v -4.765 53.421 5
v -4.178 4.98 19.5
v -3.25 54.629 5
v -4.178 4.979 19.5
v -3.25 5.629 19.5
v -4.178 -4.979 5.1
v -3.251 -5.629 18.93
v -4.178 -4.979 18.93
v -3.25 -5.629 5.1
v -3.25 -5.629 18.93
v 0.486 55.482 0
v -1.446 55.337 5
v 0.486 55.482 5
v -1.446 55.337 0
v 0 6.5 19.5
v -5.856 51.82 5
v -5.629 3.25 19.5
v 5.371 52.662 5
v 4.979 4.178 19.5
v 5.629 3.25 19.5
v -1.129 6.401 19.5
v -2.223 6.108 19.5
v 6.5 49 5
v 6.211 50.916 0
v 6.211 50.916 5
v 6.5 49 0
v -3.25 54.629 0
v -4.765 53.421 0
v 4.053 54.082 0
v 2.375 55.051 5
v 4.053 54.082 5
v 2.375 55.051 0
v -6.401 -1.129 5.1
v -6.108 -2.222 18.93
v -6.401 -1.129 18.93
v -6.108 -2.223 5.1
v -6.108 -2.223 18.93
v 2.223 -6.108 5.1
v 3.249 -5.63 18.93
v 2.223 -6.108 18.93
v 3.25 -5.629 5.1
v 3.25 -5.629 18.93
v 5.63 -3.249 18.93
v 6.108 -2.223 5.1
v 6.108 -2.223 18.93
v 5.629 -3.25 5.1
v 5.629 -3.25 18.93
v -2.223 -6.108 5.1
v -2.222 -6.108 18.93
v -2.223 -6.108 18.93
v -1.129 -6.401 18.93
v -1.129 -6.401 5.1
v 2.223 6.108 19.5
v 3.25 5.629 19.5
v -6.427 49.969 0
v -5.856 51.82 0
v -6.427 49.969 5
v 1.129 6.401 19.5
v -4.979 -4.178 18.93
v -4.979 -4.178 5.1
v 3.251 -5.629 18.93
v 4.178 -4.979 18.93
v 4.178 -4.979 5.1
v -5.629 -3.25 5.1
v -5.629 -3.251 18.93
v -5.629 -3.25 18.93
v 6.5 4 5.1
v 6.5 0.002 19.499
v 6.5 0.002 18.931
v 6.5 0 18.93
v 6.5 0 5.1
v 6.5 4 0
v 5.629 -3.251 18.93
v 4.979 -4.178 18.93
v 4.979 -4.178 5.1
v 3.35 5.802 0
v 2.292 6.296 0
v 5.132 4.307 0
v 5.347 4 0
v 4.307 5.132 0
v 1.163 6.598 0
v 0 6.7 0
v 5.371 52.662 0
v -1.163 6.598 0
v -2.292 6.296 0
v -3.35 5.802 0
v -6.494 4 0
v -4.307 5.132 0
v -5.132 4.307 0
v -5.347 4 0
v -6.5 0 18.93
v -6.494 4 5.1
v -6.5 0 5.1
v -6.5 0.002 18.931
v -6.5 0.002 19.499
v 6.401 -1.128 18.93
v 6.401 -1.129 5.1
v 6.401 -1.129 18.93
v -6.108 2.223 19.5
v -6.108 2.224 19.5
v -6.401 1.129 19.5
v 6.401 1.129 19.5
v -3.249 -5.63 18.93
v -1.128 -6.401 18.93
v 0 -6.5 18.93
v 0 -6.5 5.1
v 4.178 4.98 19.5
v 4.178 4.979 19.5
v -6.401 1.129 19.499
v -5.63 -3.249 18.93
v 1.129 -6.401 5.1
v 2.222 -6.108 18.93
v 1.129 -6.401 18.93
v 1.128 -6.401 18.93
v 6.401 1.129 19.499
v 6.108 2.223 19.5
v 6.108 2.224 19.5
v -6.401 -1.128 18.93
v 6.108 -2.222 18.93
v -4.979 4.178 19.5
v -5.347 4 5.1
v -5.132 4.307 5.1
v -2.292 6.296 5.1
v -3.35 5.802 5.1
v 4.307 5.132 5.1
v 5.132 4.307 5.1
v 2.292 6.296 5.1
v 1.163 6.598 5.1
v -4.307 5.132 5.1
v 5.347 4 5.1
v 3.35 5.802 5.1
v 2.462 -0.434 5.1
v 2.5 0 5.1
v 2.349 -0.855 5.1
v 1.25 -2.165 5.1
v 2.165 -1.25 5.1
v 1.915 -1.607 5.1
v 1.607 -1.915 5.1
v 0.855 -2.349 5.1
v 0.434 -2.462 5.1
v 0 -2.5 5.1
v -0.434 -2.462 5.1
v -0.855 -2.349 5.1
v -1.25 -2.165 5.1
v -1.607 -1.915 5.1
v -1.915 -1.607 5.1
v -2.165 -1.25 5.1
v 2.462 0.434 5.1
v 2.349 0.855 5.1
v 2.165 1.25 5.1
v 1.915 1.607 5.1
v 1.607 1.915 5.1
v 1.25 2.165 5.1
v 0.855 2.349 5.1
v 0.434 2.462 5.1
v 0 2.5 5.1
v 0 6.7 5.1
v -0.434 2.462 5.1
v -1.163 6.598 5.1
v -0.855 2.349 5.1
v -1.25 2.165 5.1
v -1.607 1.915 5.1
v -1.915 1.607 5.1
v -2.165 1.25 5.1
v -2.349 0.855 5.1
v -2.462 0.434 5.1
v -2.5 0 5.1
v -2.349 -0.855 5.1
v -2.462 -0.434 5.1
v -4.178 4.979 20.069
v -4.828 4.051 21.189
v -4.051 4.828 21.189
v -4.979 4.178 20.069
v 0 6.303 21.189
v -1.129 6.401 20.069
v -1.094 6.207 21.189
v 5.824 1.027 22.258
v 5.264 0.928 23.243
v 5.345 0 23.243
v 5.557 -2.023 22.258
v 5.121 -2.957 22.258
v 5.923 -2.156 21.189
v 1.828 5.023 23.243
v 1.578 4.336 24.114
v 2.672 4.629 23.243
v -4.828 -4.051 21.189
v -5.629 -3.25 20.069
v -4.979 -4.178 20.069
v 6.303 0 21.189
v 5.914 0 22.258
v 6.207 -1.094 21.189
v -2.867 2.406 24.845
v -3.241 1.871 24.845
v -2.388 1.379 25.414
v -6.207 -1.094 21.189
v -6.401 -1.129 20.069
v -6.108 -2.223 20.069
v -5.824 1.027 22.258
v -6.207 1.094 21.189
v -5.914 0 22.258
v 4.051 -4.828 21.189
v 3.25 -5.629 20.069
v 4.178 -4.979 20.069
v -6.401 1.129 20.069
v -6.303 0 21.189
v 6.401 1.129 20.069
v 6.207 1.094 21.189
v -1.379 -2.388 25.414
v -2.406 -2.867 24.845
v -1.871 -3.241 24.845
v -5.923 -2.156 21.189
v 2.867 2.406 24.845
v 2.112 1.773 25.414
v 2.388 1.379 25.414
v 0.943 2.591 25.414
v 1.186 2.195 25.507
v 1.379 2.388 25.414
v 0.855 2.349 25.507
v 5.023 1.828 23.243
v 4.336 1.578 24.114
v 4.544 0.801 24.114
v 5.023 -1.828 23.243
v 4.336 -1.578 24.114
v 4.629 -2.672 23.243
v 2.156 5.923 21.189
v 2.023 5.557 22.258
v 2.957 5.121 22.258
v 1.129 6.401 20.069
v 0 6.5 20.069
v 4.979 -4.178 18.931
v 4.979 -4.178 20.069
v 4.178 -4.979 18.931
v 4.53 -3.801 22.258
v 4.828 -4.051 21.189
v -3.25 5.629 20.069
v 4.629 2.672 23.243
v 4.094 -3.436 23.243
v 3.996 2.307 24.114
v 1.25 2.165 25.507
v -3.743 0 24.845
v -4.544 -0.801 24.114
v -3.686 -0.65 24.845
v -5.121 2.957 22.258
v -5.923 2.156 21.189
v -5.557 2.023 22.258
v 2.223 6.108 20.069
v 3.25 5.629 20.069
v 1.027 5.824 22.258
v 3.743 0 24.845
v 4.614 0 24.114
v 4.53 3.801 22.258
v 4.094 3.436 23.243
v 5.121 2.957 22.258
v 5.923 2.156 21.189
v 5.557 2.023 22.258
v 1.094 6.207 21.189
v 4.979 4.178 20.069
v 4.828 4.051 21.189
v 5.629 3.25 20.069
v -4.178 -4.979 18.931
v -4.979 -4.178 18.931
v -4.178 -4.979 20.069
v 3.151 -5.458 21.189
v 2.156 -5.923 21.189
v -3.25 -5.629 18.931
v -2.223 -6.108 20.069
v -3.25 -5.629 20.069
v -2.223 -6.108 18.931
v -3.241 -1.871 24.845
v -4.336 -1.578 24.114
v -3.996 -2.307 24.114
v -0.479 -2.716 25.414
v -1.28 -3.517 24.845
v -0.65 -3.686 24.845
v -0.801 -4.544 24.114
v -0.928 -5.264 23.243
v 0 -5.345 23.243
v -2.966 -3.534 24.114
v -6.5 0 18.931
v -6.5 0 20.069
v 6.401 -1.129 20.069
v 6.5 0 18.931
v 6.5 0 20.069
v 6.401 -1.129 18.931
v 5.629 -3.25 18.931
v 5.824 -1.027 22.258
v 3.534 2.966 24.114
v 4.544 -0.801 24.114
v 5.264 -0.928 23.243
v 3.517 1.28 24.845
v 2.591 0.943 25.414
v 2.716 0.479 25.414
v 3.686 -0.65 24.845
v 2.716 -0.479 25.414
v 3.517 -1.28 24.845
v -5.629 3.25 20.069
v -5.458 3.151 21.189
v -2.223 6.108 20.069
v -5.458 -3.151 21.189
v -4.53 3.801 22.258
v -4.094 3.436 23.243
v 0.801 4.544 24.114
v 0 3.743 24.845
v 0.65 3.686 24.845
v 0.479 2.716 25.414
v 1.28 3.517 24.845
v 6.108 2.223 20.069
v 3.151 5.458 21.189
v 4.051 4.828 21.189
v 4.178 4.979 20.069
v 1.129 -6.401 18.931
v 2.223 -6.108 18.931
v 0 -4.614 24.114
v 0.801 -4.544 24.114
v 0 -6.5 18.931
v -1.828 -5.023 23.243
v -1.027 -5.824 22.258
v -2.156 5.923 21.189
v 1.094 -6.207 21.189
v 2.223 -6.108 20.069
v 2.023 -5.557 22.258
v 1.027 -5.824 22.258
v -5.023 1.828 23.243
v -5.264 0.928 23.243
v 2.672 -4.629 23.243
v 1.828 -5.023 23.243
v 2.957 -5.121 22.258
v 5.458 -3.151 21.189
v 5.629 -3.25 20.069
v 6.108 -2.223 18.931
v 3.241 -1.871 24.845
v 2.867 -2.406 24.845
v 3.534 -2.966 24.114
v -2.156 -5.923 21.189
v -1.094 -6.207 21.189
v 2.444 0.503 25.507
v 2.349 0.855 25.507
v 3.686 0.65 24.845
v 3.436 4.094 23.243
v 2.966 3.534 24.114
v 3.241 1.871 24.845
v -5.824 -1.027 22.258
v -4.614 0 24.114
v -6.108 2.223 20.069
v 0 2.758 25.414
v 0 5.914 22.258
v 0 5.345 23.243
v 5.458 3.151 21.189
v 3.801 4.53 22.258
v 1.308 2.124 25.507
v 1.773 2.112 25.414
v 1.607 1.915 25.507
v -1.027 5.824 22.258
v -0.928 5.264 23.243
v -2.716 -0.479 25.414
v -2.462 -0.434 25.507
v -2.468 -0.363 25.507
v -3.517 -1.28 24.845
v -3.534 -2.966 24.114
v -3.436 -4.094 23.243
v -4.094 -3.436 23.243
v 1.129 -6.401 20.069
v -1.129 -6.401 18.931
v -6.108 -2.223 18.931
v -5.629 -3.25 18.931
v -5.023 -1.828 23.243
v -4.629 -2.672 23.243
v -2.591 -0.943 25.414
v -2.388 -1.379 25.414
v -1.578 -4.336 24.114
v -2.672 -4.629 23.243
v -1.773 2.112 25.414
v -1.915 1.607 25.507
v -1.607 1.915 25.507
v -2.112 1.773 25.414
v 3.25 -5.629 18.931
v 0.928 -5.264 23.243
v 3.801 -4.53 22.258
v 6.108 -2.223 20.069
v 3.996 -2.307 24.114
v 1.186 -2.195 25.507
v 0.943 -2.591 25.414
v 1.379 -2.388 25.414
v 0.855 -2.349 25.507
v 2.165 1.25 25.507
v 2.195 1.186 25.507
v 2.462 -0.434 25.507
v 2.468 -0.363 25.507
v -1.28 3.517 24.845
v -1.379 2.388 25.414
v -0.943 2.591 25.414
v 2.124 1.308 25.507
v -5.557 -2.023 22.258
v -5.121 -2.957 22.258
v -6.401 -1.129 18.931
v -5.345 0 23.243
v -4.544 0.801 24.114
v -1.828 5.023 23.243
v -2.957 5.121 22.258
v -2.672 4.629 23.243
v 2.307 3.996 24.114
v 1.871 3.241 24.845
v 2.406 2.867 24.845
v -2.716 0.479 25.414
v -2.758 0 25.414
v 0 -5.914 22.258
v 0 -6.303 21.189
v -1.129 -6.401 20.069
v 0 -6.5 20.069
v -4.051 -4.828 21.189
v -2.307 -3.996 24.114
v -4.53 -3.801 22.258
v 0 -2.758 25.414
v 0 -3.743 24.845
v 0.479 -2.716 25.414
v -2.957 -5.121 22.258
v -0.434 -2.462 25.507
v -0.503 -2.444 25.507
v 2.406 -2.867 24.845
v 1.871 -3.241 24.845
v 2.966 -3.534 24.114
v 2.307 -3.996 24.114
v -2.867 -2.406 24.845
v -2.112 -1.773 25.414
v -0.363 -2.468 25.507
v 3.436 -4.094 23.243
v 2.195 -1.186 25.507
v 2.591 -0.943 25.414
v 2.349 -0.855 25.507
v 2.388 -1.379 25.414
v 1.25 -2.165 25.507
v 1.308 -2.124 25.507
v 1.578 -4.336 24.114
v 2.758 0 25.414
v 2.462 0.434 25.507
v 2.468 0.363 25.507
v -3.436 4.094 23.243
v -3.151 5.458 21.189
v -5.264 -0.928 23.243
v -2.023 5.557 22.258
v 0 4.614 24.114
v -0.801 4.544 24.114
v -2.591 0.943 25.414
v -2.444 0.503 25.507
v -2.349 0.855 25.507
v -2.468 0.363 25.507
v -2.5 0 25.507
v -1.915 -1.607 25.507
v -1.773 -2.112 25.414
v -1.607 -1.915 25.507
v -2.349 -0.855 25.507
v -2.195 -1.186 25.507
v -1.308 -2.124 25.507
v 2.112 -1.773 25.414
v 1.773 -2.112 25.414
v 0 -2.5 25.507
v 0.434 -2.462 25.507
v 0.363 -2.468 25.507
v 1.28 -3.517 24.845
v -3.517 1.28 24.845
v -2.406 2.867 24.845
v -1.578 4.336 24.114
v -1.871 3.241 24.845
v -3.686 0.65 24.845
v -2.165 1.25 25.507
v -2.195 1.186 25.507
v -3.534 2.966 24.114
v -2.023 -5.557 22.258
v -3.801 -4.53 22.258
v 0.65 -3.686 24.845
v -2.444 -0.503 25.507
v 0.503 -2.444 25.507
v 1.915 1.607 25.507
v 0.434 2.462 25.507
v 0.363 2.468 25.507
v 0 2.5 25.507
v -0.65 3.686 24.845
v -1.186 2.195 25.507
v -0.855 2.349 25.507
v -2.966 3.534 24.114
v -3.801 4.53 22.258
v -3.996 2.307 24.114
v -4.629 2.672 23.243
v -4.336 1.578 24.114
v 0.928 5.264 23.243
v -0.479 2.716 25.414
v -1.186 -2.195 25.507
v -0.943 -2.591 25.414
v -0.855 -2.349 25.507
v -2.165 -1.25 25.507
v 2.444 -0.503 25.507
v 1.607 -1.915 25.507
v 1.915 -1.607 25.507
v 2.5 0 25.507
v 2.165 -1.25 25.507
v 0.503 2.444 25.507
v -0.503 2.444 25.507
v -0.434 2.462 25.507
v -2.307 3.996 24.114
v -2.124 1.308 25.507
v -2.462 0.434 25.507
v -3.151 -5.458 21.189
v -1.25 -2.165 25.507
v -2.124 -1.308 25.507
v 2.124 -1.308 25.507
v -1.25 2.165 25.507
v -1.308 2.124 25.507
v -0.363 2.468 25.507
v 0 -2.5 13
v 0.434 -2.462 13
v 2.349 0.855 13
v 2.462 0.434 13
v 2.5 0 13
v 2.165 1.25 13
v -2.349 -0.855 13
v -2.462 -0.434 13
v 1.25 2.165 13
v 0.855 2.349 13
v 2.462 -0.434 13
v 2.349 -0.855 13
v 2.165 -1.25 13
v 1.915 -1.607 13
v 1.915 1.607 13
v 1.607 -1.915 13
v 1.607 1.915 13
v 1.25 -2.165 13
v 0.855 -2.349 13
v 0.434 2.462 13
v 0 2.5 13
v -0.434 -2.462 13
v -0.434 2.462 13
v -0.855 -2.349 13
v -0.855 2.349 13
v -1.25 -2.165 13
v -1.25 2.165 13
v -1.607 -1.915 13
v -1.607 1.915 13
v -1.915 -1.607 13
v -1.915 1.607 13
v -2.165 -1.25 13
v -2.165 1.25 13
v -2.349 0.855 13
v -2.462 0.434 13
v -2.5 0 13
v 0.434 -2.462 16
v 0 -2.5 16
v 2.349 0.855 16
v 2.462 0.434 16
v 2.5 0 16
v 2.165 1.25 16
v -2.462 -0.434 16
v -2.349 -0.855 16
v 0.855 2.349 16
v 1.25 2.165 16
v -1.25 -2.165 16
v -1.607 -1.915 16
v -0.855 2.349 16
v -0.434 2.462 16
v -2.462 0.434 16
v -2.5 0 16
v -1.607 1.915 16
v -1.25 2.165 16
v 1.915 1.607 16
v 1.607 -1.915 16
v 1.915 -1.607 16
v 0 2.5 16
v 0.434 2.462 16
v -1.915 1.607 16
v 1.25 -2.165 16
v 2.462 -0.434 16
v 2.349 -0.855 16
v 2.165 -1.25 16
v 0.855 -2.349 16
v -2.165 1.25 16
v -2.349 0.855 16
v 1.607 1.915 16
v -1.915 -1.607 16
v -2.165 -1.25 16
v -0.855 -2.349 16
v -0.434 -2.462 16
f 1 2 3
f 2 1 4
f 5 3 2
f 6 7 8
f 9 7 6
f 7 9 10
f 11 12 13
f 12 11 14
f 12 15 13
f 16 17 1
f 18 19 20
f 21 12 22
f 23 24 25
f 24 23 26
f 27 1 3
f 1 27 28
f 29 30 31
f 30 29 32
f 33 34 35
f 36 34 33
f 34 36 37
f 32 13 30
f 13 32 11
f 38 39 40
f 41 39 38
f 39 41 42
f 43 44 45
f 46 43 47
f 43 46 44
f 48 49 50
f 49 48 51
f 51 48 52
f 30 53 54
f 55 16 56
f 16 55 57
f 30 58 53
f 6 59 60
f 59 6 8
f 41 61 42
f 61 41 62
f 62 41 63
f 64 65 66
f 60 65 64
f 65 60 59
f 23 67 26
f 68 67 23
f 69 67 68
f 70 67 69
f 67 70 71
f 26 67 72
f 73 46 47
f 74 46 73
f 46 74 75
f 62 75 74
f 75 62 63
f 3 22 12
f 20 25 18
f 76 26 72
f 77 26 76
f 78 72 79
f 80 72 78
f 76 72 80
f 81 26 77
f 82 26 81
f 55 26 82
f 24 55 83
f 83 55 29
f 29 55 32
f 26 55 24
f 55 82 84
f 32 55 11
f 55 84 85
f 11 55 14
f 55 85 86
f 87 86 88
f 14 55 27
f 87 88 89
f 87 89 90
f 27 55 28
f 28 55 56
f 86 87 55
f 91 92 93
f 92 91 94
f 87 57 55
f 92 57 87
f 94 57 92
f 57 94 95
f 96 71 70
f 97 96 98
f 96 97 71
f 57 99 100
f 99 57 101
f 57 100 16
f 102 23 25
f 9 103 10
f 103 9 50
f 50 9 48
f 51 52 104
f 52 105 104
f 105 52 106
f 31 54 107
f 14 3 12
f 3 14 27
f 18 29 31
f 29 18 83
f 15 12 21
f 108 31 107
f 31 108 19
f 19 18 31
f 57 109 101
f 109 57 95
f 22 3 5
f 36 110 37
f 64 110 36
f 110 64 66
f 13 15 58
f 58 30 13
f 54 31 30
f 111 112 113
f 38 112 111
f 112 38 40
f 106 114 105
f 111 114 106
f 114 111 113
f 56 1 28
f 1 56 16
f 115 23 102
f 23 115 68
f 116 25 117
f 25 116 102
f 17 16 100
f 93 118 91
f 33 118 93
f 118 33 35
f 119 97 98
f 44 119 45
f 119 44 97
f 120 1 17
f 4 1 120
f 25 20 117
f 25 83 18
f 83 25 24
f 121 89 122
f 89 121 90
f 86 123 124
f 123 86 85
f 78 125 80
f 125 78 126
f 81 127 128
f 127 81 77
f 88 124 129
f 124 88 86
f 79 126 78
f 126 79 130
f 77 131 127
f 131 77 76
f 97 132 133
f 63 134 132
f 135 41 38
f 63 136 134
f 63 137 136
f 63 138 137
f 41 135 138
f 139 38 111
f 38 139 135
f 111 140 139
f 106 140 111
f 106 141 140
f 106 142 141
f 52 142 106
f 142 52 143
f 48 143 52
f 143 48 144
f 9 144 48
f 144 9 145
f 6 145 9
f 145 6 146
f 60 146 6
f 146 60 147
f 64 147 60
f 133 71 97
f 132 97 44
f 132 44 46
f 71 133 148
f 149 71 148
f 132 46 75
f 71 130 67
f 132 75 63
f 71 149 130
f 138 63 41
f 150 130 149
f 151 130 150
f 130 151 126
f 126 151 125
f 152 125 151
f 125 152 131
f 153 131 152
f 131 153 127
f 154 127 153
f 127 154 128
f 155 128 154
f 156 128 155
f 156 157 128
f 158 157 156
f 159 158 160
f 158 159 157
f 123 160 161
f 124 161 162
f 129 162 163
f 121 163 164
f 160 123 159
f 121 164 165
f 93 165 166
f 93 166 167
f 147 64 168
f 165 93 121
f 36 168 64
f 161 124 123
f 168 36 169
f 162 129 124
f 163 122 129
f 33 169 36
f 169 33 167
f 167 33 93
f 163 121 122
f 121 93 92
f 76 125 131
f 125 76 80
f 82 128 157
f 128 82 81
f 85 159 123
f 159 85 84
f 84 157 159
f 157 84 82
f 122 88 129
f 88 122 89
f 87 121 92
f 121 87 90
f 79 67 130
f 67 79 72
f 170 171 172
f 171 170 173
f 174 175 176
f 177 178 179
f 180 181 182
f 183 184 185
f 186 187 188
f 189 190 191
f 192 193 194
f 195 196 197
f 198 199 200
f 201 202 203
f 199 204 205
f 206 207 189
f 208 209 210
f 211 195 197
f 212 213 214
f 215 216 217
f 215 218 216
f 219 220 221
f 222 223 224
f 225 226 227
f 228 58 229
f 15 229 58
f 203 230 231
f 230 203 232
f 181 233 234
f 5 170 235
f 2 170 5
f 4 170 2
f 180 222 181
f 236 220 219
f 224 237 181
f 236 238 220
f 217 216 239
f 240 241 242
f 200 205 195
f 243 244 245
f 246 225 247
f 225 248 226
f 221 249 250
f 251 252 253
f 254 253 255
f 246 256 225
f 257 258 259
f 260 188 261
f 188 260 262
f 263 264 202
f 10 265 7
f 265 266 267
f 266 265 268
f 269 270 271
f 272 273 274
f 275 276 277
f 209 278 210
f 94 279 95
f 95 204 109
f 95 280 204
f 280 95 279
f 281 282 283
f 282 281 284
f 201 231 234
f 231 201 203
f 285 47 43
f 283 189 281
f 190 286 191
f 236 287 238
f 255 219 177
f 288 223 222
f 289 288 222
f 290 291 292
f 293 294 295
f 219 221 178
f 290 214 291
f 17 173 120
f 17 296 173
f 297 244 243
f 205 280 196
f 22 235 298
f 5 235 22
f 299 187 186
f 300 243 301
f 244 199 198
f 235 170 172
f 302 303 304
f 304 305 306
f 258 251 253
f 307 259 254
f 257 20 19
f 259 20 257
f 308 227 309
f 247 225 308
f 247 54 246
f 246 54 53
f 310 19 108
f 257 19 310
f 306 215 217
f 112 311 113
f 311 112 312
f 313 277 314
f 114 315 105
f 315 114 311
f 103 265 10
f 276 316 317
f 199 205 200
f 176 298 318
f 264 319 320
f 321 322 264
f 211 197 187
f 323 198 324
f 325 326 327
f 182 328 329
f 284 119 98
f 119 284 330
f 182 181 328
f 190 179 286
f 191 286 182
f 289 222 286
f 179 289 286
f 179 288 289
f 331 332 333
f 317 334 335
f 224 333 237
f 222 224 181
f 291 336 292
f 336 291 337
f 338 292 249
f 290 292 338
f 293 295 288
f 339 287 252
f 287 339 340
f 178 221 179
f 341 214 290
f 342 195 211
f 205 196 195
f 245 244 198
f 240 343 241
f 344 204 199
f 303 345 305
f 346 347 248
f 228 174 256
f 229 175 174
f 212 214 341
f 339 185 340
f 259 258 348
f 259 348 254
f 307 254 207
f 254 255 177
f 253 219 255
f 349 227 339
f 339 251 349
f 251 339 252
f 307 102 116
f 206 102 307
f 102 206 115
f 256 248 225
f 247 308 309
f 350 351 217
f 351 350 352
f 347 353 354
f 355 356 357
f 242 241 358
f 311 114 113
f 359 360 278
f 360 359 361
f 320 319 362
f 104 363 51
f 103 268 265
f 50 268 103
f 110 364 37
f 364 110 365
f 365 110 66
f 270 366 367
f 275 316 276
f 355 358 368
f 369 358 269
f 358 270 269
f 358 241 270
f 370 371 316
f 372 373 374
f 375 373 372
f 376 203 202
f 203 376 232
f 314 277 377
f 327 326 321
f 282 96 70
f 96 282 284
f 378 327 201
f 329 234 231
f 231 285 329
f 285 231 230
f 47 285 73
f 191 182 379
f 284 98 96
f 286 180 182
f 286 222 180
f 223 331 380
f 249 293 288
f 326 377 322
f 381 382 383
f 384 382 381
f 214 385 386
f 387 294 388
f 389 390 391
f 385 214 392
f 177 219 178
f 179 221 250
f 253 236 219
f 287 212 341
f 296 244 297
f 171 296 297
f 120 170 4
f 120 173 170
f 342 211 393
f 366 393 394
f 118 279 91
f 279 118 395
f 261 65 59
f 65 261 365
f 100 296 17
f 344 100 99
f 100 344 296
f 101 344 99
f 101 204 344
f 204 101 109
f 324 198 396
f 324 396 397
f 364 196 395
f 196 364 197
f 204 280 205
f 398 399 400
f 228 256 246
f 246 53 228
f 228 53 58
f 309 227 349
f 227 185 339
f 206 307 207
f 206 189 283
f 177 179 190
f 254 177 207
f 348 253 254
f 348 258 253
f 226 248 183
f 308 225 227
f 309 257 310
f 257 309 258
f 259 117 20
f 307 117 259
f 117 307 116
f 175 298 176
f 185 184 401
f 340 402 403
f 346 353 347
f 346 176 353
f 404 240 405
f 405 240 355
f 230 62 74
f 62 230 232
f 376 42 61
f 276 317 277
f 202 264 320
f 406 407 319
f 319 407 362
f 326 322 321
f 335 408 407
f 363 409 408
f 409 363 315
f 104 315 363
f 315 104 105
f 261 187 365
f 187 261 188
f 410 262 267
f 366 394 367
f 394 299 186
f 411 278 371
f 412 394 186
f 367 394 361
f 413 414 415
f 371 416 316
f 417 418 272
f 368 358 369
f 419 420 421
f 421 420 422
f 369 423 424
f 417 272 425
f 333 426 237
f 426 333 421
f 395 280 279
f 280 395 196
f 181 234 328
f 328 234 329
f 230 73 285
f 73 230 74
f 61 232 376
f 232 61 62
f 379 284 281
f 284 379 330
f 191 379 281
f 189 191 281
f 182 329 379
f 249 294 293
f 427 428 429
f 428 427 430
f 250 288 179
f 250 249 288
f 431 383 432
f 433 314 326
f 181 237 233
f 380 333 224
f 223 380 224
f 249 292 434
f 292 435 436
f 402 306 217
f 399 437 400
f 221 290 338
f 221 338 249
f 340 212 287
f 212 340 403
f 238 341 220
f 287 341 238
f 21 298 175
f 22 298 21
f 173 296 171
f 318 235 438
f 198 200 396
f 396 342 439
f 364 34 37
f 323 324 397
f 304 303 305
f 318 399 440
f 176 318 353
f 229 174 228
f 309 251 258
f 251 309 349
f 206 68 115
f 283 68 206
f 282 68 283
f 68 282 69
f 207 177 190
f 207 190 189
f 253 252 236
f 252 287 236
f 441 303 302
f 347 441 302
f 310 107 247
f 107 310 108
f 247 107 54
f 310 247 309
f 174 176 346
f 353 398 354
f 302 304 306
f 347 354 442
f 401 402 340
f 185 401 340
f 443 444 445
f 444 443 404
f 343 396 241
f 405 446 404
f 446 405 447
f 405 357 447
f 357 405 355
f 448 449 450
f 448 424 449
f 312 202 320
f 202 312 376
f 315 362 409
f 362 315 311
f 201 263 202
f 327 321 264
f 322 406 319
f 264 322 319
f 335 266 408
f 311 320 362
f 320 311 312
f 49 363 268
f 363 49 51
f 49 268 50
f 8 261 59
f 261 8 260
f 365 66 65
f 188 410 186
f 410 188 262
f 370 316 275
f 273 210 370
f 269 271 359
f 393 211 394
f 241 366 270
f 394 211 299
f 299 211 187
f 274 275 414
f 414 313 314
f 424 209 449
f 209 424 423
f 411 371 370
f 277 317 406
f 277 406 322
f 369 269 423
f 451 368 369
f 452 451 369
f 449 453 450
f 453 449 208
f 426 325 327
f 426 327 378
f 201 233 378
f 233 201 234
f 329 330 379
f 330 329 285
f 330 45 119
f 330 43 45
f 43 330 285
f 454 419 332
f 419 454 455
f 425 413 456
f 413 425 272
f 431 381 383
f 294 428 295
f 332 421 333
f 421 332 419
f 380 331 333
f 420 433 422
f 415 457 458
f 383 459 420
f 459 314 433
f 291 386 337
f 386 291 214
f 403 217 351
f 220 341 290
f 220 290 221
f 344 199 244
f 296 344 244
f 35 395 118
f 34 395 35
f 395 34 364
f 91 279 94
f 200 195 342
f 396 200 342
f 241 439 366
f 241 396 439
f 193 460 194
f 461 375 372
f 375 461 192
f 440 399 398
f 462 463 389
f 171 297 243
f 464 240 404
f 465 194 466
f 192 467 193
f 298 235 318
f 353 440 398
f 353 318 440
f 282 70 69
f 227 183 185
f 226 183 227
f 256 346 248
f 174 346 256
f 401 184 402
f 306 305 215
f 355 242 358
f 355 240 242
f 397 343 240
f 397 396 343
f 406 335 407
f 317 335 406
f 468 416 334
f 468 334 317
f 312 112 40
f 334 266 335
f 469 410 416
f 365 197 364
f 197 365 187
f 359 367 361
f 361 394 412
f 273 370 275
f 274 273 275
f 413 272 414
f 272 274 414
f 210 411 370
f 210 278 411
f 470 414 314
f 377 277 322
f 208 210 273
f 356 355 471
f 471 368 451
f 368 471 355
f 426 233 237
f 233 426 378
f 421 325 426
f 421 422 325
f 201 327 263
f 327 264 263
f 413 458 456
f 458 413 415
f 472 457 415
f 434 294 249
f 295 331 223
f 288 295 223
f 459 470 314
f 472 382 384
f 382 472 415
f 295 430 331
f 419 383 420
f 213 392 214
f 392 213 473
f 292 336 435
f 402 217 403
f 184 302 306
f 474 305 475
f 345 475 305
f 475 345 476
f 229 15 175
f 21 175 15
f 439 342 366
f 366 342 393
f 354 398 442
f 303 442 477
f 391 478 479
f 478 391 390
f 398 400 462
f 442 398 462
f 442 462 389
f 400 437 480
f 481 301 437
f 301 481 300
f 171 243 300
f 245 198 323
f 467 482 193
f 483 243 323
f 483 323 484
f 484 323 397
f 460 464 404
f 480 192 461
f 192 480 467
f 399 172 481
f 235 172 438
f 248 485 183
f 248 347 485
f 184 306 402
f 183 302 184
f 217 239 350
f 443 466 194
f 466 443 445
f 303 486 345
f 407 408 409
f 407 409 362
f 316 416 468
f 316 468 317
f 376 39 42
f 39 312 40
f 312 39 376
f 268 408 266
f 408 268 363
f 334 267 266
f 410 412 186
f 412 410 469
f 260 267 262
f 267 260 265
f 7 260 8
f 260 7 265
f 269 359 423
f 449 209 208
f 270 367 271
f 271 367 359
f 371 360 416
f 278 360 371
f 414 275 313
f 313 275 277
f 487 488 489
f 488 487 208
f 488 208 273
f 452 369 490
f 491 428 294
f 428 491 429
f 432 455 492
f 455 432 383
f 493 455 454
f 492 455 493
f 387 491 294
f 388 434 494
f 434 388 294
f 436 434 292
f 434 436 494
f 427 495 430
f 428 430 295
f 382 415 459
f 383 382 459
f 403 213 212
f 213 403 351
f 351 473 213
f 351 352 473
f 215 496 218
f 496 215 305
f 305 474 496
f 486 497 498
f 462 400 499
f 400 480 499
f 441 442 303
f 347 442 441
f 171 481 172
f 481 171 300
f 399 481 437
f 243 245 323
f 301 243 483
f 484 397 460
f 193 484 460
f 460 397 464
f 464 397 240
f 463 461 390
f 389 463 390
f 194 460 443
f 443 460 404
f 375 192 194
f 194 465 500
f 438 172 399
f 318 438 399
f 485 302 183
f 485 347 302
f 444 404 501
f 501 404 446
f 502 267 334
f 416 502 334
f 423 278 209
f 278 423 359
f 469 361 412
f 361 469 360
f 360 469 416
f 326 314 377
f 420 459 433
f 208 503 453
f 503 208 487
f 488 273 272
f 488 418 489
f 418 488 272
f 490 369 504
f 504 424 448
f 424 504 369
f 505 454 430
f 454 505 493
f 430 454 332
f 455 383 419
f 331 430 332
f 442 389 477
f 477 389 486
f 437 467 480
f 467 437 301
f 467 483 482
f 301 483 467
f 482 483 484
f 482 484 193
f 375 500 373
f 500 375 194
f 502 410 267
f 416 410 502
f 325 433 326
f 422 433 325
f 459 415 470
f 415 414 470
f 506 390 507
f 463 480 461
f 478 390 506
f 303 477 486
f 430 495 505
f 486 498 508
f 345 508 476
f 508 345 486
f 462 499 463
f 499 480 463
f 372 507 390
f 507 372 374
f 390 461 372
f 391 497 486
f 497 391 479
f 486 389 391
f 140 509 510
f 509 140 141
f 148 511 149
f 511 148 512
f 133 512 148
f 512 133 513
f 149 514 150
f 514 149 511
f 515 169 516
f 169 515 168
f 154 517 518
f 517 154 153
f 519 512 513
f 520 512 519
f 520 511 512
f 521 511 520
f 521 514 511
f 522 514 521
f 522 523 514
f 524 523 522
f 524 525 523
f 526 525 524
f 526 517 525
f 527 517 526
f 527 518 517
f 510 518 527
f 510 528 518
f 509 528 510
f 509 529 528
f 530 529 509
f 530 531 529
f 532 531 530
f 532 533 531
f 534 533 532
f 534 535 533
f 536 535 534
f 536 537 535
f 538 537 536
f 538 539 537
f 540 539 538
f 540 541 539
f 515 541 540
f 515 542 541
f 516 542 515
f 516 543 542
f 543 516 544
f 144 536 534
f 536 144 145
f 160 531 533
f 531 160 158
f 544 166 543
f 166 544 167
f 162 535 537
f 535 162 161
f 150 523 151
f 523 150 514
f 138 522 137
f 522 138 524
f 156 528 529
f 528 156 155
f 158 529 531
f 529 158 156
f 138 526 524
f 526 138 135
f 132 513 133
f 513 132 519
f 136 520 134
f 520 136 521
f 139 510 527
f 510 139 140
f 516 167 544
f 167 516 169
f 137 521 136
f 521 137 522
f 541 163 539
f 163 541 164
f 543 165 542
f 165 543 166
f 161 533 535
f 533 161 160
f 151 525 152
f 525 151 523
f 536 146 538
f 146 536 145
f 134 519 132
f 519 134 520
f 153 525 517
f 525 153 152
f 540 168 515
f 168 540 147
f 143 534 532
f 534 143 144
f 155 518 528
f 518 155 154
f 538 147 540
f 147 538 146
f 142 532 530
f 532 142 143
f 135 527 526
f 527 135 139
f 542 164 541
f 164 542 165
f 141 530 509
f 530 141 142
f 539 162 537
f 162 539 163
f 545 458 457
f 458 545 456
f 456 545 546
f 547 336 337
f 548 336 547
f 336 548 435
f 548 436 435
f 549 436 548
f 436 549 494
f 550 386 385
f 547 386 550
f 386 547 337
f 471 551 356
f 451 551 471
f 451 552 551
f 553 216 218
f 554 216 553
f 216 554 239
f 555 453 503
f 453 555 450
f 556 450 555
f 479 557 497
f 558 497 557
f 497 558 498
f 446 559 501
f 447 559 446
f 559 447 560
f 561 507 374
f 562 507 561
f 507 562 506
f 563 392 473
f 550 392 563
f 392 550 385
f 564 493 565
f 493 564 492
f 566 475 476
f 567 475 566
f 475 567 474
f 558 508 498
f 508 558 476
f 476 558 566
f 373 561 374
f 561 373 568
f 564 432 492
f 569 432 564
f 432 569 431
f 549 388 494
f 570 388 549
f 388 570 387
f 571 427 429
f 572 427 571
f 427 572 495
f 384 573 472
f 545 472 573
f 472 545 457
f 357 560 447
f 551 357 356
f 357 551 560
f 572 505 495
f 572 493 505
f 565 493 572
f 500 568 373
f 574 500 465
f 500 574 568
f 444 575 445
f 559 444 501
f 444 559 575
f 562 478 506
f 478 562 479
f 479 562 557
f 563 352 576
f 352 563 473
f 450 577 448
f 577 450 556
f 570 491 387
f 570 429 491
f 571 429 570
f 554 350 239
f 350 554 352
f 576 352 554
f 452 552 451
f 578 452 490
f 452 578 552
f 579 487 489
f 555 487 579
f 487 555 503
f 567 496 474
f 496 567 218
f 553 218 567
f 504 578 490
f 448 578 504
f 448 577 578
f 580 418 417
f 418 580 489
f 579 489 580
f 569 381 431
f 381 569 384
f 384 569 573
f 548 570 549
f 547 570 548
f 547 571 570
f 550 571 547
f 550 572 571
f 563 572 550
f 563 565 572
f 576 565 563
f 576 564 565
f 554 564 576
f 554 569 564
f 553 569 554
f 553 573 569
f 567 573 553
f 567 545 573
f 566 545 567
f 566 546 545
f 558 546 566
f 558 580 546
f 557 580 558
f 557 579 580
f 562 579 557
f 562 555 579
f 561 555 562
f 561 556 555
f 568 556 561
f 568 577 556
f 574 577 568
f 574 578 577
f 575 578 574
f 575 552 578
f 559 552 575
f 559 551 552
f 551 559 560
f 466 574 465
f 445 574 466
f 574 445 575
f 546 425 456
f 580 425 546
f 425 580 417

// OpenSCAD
include <MCAD/units.scad>

tongue_width = 13; 
tongue_length = 49; 
tongue_height1 = 5;
// tongue_height2 = 26;
tongue_height2 = 19.5;
ball_bump_d = 6.5;
bottom_inset_cyl = ball_bump_d;
speaker_hole = (11/32)*inch; // in
slop=0.2;

split = 0;



module mount(){
  difference() {
    union() {
      translate([0,0,tongue_height2]) sphere(r=ball_bump_d+.025, $fn=36); // bump sphere at the top
      difference() {
	hull() {
	  translate([0,tongue_length,0]) cylinder(d=tongue_width, h=tongue_height1); // body short
	  cylinder(d=tongue_width, h=tongue_height2, $fn=36); // body tall
	}
	translate([0,0,0-(.5*slop)]) cylinder(r=bottom_inset_cyl+slop,h=5+slop, $fn=36); // cutout at back of mount
	translate([0,0,.5*5]) cube([15,8,5+slop],center=true); // square off a sharp corner in the inset
      }
    }
    cylinder(d=5,h=13, $fn=36); // metal rod insert
    translate([0,0,16]) cylinder(d=5,h=13, $fn=36); // metal rod insert
  }
}

if (split == 1) {
  rotate([0,90,0]) difference() {
  mount();
  translate([0,0-ball_bump_d,0-.5*slop]) cube([20,69,26]);
  }
} else {
  mount();
}
